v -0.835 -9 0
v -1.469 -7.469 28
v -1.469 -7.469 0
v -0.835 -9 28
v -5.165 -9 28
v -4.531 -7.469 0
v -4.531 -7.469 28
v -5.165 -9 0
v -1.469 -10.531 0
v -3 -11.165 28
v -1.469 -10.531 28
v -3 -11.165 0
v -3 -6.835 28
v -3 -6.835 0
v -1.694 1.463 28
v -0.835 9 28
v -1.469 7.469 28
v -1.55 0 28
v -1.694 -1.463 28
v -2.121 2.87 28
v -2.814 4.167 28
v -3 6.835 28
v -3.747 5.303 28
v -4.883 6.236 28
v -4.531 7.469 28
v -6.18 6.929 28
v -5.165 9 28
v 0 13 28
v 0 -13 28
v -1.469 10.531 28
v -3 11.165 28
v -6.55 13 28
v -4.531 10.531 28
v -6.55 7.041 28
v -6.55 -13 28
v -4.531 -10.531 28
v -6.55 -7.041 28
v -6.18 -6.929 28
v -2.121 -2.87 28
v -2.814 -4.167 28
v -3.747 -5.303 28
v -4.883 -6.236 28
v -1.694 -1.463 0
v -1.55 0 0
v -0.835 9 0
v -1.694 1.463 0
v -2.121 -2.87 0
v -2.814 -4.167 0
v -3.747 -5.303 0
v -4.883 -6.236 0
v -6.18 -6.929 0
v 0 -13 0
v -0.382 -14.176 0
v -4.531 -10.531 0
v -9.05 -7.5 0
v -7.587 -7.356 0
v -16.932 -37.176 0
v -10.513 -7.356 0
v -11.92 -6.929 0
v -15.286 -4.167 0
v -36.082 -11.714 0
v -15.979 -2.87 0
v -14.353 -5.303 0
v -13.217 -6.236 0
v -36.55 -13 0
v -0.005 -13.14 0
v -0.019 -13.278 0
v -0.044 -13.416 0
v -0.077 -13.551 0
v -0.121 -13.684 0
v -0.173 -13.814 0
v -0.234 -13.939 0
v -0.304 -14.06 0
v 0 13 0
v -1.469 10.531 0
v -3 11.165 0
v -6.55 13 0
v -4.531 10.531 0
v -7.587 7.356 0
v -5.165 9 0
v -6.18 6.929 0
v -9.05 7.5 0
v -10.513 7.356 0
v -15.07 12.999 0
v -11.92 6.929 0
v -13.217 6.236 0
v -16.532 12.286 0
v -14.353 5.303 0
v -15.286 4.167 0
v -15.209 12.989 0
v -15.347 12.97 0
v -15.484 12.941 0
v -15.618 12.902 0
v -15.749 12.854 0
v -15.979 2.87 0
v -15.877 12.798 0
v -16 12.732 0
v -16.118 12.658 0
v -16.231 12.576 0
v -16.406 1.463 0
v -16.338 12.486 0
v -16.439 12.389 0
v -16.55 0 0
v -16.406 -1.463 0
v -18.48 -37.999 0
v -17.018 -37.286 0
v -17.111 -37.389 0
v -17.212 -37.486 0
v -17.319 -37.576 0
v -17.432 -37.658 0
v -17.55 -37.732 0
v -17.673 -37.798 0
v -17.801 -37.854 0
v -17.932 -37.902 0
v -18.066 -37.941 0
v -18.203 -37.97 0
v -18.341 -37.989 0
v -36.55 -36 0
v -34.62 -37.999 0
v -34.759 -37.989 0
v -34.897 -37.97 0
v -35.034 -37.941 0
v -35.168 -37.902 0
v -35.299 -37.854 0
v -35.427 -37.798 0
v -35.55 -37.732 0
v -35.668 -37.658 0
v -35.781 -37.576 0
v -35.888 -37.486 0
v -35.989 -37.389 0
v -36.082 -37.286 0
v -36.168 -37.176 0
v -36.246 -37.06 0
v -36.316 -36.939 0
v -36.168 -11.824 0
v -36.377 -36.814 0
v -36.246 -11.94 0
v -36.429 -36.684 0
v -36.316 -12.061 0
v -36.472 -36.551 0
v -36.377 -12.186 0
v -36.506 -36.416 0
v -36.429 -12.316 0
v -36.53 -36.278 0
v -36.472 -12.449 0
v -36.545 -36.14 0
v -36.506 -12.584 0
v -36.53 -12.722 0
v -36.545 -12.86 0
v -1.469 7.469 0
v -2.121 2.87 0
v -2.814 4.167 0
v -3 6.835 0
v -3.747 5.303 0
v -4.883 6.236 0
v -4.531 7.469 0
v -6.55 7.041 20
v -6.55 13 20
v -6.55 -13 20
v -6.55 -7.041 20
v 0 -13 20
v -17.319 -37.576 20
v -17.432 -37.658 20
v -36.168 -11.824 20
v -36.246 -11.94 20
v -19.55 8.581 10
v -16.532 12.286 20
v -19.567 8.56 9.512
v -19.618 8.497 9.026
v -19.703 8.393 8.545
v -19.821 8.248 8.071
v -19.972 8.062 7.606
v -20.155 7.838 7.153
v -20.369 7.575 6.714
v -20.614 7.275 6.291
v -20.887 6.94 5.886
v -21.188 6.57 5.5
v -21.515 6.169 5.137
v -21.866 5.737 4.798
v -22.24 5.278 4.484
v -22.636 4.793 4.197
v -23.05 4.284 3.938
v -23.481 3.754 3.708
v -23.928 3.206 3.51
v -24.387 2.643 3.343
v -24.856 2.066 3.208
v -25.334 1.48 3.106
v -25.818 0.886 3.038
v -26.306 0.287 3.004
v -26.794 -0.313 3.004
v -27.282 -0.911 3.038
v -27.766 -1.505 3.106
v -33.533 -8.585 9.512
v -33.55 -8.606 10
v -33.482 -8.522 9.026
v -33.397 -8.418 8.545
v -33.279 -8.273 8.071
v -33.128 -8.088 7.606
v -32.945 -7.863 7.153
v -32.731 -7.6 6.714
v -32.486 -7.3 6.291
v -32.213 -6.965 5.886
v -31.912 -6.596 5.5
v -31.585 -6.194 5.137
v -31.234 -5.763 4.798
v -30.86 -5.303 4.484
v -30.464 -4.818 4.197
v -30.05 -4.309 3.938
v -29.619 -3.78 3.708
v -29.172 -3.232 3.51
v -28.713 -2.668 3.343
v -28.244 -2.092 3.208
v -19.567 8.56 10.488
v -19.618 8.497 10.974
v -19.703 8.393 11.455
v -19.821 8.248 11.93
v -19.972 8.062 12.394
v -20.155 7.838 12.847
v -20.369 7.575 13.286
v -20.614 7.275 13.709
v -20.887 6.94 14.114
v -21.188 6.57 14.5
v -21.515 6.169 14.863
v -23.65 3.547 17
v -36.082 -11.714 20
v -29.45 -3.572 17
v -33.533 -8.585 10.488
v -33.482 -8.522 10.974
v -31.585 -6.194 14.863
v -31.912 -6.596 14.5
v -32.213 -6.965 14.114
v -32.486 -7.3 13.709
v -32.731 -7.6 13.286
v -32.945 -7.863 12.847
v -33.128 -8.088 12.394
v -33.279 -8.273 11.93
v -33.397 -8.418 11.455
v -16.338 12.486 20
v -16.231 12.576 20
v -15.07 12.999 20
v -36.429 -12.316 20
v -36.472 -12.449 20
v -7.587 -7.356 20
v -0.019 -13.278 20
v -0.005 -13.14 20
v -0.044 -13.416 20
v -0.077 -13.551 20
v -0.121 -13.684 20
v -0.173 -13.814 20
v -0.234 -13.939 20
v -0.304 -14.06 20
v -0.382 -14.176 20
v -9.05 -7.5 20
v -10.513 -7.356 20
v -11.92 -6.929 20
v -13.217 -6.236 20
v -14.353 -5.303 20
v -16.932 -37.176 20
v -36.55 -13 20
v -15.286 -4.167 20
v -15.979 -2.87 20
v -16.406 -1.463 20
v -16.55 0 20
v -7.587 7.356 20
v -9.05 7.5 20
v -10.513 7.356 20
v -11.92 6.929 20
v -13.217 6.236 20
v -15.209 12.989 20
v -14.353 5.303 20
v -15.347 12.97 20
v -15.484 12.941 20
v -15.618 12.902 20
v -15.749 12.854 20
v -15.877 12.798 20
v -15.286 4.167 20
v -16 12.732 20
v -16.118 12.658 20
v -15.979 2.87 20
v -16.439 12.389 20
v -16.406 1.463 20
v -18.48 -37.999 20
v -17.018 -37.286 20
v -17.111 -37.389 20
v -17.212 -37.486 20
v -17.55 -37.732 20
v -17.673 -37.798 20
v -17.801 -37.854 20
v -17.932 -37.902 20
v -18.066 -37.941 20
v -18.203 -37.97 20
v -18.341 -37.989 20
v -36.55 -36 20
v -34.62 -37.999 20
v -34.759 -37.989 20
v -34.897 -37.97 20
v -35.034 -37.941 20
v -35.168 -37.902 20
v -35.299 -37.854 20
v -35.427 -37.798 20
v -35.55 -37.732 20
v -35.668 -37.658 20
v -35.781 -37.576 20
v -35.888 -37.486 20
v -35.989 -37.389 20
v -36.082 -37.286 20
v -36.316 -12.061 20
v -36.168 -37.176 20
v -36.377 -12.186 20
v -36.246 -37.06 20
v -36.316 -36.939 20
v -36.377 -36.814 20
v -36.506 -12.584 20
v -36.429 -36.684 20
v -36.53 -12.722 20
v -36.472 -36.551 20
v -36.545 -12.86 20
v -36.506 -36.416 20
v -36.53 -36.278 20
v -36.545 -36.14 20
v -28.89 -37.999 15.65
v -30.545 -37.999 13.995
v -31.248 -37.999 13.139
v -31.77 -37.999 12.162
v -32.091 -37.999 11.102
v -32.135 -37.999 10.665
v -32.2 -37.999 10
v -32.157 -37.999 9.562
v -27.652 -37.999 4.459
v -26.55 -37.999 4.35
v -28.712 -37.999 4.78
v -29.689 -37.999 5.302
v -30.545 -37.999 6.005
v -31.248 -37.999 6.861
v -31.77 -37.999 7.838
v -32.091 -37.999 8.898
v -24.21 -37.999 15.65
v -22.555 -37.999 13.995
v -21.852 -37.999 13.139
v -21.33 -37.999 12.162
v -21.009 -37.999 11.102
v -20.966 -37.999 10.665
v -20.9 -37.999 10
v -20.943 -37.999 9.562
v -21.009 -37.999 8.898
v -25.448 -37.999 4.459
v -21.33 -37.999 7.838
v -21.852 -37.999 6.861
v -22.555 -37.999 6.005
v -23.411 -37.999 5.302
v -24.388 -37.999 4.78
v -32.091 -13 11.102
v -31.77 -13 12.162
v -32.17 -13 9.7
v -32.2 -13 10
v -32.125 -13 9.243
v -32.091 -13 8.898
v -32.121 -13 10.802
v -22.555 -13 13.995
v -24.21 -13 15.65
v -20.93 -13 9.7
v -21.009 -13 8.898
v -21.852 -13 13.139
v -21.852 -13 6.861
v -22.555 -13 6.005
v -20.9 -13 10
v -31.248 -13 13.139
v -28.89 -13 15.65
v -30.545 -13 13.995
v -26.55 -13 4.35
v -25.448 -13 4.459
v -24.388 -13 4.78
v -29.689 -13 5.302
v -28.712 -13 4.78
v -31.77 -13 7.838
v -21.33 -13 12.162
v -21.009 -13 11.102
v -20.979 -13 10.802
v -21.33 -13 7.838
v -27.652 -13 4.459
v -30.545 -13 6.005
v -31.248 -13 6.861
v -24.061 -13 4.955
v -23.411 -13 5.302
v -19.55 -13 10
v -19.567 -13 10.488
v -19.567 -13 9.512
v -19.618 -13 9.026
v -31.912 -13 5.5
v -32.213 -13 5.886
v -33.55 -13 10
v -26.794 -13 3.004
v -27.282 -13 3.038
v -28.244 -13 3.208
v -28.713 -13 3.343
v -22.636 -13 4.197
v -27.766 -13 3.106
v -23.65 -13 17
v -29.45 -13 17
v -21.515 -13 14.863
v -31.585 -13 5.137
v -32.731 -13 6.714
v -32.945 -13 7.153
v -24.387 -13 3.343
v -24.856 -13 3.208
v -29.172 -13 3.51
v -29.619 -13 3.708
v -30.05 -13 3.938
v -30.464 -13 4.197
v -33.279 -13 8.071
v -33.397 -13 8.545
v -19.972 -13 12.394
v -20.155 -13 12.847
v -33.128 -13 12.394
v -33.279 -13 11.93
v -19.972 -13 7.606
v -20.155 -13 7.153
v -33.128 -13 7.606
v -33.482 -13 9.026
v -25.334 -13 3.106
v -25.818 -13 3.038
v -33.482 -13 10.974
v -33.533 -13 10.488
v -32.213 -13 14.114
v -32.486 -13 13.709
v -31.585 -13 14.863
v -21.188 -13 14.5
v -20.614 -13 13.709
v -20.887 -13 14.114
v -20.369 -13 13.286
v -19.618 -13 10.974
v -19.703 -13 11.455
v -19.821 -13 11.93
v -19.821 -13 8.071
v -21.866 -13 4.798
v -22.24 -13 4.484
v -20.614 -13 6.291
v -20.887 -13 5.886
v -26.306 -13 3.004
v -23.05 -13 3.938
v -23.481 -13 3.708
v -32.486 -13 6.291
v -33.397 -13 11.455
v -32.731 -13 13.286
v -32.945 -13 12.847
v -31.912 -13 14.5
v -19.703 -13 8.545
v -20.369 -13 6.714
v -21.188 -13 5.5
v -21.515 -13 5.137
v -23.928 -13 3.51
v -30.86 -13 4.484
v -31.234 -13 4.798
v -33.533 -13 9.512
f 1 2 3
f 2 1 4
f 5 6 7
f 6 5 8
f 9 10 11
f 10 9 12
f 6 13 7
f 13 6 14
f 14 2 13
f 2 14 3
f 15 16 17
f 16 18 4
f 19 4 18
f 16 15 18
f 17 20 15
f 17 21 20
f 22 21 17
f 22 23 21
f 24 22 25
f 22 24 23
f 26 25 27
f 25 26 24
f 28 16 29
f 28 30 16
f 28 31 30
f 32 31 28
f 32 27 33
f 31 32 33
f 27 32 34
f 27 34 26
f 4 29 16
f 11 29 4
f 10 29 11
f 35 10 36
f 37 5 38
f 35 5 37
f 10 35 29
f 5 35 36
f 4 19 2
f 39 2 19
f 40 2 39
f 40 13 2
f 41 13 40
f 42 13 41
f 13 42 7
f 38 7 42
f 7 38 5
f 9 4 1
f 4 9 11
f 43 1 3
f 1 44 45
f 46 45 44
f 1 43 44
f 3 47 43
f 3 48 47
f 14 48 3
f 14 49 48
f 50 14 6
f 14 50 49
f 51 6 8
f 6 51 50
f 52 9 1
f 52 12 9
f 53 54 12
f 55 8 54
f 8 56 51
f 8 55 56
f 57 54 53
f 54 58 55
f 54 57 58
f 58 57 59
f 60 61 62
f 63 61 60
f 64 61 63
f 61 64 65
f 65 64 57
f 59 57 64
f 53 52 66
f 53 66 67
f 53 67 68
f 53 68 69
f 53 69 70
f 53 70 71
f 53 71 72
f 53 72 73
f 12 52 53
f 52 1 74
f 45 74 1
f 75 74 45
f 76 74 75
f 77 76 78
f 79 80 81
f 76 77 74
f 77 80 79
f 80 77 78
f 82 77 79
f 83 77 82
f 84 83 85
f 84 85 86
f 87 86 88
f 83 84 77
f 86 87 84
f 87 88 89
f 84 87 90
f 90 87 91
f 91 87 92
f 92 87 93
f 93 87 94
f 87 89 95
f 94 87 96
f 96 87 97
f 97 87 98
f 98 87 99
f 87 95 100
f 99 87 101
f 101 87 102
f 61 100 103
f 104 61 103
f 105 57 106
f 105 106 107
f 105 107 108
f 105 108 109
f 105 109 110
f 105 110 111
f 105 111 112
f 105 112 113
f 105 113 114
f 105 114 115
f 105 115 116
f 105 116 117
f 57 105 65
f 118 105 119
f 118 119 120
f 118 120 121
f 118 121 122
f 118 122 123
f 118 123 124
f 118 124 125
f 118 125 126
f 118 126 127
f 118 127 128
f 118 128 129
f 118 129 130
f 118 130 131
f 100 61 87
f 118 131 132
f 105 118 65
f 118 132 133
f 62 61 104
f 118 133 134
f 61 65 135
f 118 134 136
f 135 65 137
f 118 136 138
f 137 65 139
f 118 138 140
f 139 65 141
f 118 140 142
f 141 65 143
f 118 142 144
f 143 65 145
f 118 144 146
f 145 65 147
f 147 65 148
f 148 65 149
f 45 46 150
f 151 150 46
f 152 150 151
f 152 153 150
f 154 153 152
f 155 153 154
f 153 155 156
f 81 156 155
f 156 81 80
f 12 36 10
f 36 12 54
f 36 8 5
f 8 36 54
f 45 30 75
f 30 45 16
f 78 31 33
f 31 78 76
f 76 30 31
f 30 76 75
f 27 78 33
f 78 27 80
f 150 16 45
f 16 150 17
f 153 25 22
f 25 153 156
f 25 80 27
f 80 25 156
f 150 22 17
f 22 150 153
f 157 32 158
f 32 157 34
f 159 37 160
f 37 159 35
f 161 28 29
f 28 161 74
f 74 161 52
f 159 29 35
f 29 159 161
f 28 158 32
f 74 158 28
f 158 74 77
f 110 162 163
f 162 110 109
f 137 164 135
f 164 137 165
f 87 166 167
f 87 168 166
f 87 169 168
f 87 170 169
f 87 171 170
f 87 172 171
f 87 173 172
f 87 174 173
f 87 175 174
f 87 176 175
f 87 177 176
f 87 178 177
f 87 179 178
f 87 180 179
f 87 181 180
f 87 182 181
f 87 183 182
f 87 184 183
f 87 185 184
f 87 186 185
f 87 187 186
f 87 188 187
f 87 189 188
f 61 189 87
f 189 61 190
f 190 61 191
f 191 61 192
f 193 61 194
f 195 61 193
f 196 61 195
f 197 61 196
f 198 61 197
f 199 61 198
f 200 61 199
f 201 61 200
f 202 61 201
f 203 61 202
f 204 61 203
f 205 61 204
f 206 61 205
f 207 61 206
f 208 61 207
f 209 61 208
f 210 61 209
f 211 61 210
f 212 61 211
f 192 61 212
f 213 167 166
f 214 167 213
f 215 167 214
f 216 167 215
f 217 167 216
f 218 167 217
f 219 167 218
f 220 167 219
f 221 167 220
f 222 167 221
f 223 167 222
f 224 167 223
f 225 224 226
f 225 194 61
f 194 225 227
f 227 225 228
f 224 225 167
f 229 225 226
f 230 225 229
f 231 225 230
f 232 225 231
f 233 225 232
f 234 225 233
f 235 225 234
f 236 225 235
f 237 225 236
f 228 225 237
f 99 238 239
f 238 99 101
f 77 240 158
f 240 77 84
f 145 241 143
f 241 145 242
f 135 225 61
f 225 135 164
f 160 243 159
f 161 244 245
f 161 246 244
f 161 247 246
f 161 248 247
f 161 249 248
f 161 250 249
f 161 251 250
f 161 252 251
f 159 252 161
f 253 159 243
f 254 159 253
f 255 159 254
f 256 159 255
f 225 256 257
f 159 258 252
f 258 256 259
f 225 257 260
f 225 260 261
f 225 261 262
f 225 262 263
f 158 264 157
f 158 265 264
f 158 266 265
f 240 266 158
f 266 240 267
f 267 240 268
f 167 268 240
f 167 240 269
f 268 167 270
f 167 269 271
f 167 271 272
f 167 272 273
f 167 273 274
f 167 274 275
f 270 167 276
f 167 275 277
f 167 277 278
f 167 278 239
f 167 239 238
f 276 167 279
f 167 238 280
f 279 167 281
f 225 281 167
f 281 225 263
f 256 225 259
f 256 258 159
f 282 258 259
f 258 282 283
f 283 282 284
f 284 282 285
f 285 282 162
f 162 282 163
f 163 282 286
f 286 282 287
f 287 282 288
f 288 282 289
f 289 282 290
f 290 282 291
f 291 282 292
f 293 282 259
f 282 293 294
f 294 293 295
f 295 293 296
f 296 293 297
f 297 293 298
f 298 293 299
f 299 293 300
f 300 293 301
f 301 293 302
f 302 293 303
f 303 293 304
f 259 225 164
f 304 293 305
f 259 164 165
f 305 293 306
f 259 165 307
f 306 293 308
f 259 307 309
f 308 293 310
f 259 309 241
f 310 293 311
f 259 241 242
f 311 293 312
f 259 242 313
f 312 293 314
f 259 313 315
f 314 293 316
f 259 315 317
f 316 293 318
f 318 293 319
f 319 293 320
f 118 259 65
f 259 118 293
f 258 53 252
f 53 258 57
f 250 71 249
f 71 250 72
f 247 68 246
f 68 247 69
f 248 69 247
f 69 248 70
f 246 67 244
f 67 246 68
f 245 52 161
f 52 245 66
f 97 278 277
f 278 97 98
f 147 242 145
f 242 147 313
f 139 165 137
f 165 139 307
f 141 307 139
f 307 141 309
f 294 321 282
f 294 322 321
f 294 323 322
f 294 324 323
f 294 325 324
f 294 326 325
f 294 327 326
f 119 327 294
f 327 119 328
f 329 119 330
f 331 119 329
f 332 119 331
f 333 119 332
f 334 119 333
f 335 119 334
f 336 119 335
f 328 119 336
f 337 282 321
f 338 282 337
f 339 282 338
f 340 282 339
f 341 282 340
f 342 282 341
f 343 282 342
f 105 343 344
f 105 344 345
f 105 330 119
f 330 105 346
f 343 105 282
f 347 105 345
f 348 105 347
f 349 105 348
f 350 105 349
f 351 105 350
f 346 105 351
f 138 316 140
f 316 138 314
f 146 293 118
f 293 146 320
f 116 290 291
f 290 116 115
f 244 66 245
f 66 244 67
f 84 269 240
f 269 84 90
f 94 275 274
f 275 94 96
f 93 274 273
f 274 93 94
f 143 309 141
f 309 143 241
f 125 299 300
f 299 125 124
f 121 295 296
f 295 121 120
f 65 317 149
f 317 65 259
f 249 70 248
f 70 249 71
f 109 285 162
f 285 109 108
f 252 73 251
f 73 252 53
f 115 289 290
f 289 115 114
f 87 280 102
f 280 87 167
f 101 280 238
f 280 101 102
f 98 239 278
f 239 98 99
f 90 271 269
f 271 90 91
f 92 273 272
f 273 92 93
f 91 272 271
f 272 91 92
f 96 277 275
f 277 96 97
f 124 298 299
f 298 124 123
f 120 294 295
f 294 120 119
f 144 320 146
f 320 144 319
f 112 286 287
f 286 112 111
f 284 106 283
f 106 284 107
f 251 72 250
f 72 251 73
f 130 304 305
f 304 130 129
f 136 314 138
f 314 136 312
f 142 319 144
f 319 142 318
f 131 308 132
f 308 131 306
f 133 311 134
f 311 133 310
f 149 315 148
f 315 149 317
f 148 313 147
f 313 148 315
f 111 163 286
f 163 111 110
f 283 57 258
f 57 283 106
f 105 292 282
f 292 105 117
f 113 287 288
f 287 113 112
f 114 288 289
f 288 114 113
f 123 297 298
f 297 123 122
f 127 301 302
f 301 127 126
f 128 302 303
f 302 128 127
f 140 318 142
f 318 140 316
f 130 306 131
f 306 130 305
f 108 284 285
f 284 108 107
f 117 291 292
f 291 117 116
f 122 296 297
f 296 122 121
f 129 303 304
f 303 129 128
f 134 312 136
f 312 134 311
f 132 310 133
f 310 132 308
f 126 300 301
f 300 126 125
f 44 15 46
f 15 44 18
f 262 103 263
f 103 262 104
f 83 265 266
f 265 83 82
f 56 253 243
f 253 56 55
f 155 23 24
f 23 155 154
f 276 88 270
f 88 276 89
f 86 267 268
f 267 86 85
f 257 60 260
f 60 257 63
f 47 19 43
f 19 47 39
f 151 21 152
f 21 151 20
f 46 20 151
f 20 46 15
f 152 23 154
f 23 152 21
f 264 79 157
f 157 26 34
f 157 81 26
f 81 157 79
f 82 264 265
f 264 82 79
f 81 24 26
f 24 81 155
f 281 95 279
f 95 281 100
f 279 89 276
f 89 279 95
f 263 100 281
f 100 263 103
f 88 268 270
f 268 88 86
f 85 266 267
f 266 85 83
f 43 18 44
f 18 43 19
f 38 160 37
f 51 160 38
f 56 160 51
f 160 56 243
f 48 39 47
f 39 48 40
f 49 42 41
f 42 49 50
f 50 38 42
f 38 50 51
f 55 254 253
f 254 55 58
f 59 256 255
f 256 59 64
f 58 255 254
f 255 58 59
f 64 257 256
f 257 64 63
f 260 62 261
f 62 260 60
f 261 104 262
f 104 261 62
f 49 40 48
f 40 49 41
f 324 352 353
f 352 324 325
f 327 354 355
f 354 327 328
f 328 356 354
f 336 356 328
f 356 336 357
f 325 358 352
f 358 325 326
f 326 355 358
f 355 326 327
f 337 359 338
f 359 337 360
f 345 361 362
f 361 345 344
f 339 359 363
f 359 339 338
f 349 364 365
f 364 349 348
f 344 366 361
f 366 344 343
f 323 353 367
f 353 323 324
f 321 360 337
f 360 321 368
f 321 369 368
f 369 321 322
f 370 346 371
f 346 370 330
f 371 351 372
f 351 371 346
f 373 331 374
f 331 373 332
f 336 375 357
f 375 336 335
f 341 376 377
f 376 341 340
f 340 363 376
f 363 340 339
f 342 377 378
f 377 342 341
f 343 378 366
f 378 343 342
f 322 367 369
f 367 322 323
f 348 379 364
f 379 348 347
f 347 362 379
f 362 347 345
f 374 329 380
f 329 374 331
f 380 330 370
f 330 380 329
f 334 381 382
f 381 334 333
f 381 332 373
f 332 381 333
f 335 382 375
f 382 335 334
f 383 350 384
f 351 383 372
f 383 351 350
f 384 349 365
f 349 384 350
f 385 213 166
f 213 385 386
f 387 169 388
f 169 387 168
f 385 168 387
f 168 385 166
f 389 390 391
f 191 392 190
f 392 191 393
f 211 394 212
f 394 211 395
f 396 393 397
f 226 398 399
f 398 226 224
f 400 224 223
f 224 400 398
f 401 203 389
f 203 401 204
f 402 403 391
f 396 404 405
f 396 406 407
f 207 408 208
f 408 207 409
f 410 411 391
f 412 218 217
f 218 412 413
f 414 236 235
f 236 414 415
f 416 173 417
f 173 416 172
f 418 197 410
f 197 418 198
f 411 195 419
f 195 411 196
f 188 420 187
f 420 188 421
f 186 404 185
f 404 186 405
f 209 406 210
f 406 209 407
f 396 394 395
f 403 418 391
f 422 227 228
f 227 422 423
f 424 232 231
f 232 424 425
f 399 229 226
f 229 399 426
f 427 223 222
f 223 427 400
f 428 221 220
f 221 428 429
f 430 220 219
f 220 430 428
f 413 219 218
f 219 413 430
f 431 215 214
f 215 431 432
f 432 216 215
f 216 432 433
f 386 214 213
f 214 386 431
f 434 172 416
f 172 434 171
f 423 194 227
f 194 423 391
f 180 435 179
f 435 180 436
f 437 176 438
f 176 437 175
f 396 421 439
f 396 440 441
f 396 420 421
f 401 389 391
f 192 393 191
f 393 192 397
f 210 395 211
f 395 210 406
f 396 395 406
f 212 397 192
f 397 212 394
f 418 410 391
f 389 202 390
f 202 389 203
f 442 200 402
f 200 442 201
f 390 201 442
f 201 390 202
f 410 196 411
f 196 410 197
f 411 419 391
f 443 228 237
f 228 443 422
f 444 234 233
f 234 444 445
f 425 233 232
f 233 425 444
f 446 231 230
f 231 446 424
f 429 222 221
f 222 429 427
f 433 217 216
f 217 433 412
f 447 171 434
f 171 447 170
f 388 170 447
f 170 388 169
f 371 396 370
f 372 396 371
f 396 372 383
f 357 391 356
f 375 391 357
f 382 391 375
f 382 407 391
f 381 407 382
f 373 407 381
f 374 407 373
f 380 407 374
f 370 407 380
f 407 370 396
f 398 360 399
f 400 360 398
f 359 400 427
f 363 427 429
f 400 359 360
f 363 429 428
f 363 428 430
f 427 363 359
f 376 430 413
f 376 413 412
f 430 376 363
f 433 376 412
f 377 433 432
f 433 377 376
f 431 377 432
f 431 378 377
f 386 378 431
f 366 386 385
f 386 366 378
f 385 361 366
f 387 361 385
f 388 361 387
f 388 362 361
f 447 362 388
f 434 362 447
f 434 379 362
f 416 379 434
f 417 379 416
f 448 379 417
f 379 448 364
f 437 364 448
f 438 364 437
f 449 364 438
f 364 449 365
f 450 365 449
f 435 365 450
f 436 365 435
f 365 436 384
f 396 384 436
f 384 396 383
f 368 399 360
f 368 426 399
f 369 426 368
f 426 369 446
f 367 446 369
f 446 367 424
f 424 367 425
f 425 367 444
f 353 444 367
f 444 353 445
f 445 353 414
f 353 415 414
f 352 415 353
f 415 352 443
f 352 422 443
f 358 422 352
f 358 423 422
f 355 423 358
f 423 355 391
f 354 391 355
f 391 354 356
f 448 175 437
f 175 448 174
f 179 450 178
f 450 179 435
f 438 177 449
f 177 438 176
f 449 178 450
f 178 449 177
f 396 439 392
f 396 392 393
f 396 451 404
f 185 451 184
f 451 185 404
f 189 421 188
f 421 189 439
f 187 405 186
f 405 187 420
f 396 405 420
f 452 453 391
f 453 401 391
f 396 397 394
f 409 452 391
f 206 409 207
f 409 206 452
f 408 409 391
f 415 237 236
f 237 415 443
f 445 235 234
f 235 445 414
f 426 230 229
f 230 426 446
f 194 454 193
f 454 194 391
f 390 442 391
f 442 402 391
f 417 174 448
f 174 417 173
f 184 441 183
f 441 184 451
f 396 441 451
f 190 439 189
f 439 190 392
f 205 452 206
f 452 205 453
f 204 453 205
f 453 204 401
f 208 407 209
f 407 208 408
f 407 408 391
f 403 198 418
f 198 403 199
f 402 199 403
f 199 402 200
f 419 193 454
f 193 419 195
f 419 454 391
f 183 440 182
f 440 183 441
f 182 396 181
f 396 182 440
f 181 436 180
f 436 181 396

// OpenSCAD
// file: ../../trunctear.scad
//A module for truncated tear drops.

trunctear(1, 0.5, $fn = 90);

module trunctear(hei, radian, cent = false)
{
    linear_extrude(height = hei, center = cent)
        hull()
        {
            circle(r = radian);
            translate([0, radian/2])
                square([2*(radian*(2*cos(45)-1)), radian], center = true);
        }
}
// file: ../../polyhole.scad
// The Cylinder is dead! Long live the Cylinder!
// A module for a polyhole by radius, based on Nophead's work.

module polyhole(h, r, cent = false)
{
    n = max(round(4 * r), 3);
    cylinder(h = h, r = r / cos(180 / n), $fn = n, center = cent);
}
// main file
use<../../polyhole.scad>
use<../../trunctear.scad>

InductiveSpacer();

module InductiveSpacer()
{
    difference()
    {
        union()
        {
            translate([-(60-(42.3+4.6))/4, 0, (28)/2])
                cube([(60-(42.3+4.6))/2, 20+6, 28], center = true);
            hull()
            {
                translate([-(60-(42.3+4.6))/4, 0, (4+12+4)/2])
                    cube([(60-(42.3+4.6))/2, 20+6, 4+12+4], center = true);
                translate([-2, -(20+6)/2, 0])
                    cylinder(r = 2, h = 4+12+4, $fn = 90);
                translate([-15, (20+6)/2-2, 0])
                    cylinder(r = 2, h = 4+12+4, $fn = 90);
                translate([-(65/2-(42.3+4.6)/2)-15/2-12/2-4+12/2+4-2, -36, 0])
                    cylinder(r = 2, h = 4+12+4, $fn = 90);
                translate([-(65/2-(42.3+4.6)/2)-15/2-12/2-4-12/2-4+2, -36, 0])
                    cylinder(r = 2, h = 4+12+4, $fn = 90);
                translate([-(65/2-(42.3+4.6)/2)-15/2-12/2-4-12/2-4+2, -(20+6)/2, 0])
                    cylinder(r = 2, h = 4+12+4, $fn = 90);
            }
        }
        translate([-(65/2-(42.3+4.6)/2), 0, 0])
            cylinder(h = 28, r = 15/2, $fn = 32);
        for(i = [-1 : 2 : 1])
            translate([-3, i*9, 0])
                polyhole(28, 2);
        translate([-(65/2-(42.3+4.6)/2)-15/2-12/2-4, -13-45.6, 12/2+4])
            rotate([90, 0, 0])
                trunctear(200, (12-0.7)/2, $fn = 32, true);
        translate([-(65/2-(42.3+4.6)/2)-15/2-12/2-4, -(20+6)/2, 12/2+4])
            rotate([90, 0, 180])
                trunctear(40, 14/2, $fn = 90);
    }
}
